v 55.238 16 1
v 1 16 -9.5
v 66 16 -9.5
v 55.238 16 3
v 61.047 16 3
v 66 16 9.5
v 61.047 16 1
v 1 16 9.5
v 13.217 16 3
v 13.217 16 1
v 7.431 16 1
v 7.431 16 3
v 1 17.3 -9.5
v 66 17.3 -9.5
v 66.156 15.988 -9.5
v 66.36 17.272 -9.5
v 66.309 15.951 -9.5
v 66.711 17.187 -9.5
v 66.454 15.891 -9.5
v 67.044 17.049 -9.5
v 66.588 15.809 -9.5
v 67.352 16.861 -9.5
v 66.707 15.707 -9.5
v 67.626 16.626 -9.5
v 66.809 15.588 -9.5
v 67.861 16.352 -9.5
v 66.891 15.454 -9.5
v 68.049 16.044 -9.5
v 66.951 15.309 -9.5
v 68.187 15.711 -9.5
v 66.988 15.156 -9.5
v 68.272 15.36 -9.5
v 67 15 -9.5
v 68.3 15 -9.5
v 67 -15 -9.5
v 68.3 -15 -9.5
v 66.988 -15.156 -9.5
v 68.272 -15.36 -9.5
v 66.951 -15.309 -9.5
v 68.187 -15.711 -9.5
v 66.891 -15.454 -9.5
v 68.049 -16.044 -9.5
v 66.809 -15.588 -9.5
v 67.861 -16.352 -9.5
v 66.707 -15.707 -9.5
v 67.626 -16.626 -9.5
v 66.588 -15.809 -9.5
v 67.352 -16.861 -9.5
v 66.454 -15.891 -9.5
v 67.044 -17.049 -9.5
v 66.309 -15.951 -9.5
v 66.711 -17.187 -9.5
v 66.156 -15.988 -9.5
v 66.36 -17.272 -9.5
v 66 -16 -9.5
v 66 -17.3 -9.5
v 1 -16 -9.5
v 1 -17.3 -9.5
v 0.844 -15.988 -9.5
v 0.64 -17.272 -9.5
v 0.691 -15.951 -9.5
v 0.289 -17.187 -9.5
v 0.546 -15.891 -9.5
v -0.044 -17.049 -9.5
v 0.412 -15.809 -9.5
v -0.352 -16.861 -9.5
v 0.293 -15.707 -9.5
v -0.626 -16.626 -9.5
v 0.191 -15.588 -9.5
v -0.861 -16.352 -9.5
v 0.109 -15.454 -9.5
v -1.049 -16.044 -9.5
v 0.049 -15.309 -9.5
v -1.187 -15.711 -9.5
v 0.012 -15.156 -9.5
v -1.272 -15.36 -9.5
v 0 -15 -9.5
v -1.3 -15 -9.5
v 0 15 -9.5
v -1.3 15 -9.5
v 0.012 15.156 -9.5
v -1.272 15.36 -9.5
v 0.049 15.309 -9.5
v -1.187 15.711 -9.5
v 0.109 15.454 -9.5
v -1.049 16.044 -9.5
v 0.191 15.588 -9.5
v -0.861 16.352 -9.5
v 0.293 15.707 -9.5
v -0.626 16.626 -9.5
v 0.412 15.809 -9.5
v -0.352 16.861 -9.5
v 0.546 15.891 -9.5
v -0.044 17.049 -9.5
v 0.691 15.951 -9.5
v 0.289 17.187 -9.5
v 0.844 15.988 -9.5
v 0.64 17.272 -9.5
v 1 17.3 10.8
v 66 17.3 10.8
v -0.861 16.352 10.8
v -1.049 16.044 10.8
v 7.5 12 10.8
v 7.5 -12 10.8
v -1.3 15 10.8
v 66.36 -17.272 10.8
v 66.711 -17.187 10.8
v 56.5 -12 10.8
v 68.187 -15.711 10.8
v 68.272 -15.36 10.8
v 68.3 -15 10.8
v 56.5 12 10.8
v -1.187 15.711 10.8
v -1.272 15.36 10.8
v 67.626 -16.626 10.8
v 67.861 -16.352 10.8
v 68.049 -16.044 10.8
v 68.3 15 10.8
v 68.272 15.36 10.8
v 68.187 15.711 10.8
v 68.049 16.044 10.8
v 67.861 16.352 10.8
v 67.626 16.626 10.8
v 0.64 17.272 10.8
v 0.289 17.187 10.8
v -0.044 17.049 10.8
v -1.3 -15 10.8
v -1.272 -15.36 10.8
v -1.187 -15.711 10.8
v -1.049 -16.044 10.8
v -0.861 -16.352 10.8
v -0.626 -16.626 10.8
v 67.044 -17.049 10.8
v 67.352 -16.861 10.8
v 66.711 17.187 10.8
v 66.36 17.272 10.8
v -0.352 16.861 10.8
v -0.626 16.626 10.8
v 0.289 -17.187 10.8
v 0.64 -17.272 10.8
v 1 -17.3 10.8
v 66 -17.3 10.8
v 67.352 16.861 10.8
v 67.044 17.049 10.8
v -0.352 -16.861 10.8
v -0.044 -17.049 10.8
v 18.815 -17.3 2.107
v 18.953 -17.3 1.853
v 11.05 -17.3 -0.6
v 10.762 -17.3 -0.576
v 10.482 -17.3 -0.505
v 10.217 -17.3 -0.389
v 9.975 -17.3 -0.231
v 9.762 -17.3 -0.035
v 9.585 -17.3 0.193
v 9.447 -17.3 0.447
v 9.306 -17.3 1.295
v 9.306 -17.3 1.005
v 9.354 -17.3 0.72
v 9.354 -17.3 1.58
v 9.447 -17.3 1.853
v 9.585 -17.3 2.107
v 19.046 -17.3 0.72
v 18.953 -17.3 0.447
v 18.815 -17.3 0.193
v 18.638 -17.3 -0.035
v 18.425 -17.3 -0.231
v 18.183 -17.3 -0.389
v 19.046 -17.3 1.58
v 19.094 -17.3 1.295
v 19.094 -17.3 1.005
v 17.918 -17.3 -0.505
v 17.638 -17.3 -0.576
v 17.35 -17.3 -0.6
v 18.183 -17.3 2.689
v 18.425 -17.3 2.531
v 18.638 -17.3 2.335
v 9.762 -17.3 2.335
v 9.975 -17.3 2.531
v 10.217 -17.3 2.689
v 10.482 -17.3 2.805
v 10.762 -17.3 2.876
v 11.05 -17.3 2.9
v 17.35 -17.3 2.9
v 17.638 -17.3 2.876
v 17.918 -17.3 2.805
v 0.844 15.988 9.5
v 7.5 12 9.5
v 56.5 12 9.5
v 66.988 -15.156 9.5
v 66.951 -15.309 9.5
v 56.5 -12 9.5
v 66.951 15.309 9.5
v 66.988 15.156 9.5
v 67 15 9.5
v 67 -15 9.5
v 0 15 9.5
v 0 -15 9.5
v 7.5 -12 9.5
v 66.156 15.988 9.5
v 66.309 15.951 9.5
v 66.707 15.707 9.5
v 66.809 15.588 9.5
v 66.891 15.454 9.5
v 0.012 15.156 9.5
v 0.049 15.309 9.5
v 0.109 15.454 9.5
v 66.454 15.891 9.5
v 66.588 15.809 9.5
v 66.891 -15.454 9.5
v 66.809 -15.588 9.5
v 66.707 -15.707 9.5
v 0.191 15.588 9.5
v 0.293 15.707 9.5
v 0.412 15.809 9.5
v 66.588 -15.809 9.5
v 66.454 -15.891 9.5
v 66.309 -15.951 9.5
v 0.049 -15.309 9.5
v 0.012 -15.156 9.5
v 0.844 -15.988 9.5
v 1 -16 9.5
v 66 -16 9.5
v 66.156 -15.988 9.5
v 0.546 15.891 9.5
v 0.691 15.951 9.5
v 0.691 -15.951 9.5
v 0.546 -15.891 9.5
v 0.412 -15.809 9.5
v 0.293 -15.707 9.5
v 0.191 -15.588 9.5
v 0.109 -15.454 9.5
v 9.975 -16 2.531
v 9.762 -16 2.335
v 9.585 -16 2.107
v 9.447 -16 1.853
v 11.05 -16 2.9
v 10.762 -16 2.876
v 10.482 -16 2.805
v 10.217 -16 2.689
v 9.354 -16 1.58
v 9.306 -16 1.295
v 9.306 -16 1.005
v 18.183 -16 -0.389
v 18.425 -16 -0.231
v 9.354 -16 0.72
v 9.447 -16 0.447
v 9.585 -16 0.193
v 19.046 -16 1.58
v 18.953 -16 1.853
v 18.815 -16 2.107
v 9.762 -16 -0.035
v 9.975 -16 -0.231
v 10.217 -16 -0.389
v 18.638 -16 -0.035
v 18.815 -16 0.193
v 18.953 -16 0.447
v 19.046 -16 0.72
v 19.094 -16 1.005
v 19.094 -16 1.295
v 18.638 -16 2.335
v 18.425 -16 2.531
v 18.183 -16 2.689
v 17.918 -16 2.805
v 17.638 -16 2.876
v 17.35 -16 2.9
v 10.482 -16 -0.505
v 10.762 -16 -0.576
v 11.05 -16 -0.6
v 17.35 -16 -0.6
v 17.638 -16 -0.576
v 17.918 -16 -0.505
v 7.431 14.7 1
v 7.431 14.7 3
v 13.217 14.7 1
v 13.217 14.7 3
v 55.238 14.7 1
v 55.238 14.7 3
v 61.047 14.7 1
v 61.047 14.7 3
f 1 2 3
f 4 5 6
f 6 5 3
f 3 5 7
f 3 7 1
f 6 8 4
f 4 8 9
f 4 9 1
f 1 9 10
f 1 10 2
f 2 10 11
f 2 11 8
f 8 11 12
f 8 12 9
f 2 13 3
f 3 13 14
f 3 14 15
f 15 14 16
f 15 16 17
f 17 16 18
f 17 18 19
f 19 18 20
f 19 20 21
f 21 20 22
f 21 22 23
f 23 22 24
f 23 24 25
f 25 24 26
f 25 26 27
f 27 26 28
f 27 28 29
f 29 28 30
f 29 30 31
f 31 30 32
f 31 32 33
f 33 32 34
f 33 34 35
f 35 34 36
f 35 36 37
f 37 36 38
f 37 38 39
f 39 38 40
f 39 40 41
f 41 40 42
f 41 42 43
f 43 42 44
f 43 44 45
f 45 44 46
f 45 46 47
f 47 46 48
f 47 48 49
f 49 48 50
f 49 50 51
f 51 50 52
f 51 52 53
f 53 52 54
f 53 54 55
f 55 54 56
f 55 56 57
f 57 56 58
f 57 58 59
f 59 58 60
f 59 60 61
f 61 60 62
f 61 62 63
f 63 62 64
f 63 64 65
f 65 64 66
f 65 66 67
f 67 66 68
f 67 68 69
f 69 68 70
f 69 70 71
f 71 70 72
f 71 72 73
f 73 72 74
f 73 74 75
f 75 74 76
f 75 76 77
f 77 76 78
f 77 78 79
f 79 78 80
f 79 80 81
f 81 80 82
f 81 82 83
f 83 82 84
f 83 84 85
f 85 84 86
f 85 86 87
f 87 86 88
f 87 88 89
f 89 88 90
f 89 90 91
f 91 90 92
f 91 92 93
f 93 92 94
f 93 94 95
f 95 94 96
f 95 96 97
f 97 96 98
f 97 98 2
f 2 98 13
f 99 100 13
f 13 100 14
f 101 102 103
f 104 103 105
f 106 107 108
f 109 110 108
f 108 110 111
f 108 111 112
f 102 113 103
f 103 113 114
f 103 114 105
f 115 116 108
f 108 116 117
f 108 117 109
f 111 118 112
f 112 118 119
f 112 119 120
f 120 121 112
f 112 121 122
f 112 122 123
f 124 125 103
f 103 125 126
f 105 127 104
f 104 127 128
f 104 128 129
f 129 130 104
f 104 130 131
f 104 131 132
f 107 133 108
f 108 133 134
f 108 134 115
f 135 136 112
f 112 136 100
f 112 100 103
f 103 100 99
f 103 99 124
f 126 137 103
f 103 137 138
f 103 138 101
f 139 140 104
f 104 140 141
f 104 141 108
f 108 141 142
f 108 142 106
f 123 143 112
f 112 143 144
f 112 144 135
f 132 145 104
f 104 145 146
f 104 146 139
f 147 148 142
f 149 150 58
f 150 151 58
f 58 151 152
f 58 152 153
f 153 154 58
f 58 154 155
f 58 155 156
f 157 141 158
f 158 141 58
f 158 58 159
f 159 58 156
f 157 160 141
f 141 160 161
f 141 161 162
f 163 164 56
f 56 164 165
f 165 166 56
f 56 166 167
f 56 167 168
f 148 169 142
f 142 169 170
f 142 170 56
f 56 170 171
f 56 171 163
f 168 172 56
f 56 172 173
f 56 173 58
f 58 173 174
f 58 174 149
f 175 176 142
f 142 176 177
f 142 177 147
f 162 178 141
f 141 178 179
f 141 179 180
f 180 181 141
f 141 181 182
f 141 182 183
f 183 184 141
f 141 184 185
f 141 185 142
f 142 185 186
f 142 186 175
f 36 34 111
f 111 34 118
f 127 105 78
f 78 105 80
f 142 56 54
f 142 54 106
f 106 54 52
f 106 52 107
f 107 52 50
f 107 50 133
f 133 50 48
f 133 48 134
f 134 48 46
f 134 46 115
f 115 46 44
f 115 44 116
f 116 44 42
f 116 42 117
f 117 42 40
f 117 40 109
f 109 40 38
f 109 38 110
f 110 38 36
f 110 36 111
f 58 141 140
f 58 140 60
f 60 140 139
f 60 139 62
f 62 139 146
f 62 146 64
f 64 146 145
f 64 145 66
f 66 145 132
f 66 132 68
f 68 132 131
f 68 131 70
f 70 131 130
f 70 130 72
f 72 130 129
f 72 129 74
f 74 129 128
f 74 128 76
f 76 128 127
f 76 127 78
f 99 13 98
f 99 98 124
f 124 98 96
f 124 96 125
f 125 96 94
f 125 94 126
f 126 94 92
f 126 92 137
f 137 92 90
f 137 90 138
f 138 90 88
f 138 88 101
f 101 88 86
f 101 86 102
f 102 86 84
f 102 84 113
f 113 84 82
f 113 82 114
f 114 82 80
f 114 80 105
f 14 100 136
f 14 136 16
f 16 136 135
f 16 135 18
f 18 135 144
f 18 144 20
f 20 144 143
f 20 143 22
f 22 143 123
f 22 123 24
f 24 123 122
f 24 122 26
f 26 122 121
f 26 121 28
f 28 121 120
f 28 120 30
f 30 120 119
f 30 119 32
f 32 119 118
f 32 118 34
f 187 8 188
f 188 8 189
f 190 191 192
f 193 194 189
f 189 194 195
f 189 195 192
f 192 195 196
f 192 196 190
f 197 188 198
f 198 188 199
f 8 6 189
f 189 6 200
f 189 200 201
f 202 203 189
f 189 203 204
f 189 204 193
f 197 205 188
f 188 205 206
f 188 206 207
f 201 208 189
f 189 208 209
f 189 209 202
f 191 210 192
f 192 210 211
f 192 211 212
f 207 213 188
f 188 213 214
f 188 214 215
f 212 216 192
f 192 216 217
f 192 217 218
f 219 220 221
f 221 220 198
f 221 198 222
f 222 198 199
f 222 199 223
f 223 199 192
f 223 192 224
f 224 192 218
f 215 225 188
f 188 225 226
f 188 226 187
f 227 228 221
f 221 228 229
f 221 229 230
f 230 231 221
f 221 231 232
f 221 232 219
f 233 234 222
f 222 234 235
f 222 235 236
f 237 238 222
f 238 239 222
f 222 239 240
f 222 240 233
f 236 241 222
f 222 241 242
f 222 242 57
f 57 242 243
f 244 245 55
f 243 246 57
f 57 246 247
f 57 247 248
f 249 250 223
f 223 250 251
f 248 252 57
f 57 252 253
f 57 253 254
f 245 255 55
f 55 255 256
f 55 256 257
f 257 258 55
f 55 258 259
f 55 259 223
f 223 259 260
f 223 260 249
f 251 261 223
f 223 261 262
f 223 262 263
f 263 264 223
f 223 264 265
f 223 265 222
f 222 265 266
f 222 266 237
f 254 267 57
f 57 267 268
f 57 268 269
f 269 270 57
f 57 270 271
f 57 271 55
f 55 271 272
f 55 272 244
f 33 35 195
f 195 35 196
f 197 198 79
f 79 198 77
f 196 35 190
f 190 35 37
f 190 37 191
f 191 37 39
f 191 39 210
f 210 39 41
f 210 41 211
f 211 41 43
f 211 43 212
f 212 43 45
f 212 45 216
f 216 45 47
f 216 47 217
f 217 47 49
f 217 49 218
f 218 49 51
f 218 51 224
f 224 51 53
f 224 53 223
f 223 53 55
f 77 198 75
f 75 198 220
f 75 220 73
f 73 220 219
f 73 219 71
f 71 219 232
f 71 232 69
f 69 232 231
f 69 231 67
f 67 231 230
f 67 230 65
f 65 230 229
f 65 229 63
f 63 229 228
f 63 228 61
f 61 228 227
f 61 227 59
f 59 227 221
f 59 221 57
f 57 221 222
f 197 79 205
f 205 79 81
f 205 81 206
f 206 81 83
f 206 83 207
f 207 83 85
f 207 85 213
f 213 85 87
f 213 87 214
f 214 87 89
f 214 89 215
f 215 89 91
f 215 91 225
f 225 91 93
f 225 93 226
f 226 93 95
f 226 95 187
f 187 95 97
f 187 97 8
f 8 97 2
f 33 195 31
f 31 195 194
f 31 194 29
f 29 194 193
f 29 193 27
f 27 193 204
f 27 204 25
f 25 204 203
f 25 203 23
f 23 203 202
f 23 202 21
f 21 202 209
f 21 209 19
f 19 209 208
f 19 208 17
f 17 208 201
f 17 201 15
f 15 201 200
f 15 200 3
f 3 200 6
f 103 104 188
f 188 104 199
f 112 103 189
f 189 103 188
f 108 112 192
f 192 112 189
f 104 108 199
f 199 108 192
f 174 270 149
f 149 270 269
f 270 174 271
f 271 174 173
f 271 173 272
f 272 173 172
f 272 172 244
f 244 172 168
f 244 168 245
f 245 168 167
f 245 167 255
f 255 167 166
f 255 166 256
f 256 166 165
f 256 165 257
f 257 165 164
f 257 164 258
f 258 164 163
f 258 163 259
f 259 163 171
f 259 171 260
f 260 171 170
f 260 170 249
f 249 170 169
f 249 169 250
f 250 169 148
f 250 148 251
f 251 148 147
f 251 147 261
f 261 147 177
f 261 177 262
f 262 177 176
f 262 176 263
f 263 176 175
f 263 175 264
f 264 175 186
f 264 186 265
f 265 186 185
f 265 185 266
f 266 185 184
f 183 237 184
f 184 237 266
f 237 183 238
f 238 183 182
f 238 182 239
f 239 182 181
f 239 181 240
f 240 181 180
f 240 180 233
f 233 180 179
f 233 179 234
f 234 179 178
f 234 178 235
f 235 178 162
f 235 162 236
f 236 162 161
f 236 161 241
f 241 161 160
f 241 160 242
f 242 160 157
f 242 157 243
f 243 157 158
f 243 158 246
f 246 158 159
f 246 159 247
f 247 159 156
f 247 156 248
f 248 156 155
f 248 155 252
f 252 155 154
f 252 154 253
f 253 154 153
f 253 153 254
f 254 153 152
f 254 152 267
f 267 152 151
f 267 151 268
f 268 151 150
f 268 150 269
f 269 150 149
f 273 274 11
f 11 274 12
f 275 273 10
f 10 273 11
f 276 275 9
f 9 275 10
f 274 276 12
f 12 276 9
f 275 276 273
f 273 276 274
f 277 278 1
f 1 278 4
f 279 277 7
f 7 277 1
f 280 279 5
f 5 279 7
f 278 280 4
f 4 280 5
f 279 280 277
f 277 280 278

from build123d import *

# Parameters (mm, degrees)
SKETCH_1_W          = 19
SKETCH_1_H          = 32
EXTRUDE_1_DEPTH     = 67
FILLET_1_R          = 1
SHELL_1_T           = 1.3
SKETCH_2_W          = 49
SKETCH_2_H          = 24
CUT_EXTRUDE_1_DEPTH = 74.32305231
CUT_EXTRUDE_2_REACH = 79.322
SKETCH_4_W          = 5.786103887
SKETCH_4_H          = 2
SKETCH_4_W_2        = 5.809063148
EXTRUDE_2_DEPTH     = 1.3


with BuildPart() as part:
    # 草图1 → 凸台-拉伸1 (new body)
    with BuildSketch(Plane(origin=(0, 0, 0), x_dir=(0, 0, -1), z_dir=(1, 0, 0))):
        Rectangle(SKETCH_1_W, SKETCH_1_H)
    extrude(amount=EXTRUDE_1_DEPTH)

    # 圆角1
    fillet_1_edges = [part.edges().sort_by_distance(p)[0] for p in [
        (67, -16, 0),
        (0, -16, 0),
        (0, 16, 0),
        (67, 16, 0),
    ]]
    fillet(fillet_1_edges, radius=FILLET_1_R)

    # 抽壳1
    shell_1_openings = [part.faces().sort_by_distance(p)[0] for p in [
        (33.5, 0, -9.5),
    ]]
    offset(amount=SHELL_1_T, openings=shell_1_openings, kind=Kind.INTERSECTION)

    # 草图2 → 切除-拉伸1 (cut, through all)
    with BuildSketch(Plane.XY.offset(10.8)):
        with Locations((32, 0)):
            Rectangle(SKETCH_2_W, SKETCH_2_H)
    extrude(amount=-CUT_EXTRUDE_1_DEPTH, mode=Mode.SUBTRACT)

    # 草图3 → 切除-拉伸2 (cut, up to next)
    with BuildSketch(Plane.XZ.offset(17.3), mode=Mode.PRIVATE) as cut_extrude_2_sk1:
        with BuildLine():
            Line((11.05, 2.9), (17.35, 2.9))
            ThreePointArc((17.35, 2.9), (19.1, 1.15), (17.35, -0.6))
            Line((17.35, -0.6), (11.05, -0.6))
            ThreePointArc((11.05, -0.6), (9.3, 1.15), (11.05, 2.9))
        make_face()
    cut_extrude_2_tool1 = extrude(cut_extrude_2_sk1.sketch, amount=-CUT_EXTRUDE_2_REACH, mode=Mode.PRIVATE) & part.part
    add(cut_extrude_2_tool1.solids().sort_by_distance((14.2, -17.3, 1.15))[0], mode=Mode.SUBTRACT)

    # 草图4 → 凸台-拉伸2 (add)
    with BuildSketch(Plane.XZ.offset(-16)):
        with Locations((10.323725872, 2)):
            Rectangle(SKETCH_4_W, SKETCH_4_H)
        with Locations((58.142746149, 2)):
            Rectangle(SKETCH_4_W_2, SKETCH_4_H)
    extrude(amount=EXTRUDE_2_DEPTH)


solid = part.part
